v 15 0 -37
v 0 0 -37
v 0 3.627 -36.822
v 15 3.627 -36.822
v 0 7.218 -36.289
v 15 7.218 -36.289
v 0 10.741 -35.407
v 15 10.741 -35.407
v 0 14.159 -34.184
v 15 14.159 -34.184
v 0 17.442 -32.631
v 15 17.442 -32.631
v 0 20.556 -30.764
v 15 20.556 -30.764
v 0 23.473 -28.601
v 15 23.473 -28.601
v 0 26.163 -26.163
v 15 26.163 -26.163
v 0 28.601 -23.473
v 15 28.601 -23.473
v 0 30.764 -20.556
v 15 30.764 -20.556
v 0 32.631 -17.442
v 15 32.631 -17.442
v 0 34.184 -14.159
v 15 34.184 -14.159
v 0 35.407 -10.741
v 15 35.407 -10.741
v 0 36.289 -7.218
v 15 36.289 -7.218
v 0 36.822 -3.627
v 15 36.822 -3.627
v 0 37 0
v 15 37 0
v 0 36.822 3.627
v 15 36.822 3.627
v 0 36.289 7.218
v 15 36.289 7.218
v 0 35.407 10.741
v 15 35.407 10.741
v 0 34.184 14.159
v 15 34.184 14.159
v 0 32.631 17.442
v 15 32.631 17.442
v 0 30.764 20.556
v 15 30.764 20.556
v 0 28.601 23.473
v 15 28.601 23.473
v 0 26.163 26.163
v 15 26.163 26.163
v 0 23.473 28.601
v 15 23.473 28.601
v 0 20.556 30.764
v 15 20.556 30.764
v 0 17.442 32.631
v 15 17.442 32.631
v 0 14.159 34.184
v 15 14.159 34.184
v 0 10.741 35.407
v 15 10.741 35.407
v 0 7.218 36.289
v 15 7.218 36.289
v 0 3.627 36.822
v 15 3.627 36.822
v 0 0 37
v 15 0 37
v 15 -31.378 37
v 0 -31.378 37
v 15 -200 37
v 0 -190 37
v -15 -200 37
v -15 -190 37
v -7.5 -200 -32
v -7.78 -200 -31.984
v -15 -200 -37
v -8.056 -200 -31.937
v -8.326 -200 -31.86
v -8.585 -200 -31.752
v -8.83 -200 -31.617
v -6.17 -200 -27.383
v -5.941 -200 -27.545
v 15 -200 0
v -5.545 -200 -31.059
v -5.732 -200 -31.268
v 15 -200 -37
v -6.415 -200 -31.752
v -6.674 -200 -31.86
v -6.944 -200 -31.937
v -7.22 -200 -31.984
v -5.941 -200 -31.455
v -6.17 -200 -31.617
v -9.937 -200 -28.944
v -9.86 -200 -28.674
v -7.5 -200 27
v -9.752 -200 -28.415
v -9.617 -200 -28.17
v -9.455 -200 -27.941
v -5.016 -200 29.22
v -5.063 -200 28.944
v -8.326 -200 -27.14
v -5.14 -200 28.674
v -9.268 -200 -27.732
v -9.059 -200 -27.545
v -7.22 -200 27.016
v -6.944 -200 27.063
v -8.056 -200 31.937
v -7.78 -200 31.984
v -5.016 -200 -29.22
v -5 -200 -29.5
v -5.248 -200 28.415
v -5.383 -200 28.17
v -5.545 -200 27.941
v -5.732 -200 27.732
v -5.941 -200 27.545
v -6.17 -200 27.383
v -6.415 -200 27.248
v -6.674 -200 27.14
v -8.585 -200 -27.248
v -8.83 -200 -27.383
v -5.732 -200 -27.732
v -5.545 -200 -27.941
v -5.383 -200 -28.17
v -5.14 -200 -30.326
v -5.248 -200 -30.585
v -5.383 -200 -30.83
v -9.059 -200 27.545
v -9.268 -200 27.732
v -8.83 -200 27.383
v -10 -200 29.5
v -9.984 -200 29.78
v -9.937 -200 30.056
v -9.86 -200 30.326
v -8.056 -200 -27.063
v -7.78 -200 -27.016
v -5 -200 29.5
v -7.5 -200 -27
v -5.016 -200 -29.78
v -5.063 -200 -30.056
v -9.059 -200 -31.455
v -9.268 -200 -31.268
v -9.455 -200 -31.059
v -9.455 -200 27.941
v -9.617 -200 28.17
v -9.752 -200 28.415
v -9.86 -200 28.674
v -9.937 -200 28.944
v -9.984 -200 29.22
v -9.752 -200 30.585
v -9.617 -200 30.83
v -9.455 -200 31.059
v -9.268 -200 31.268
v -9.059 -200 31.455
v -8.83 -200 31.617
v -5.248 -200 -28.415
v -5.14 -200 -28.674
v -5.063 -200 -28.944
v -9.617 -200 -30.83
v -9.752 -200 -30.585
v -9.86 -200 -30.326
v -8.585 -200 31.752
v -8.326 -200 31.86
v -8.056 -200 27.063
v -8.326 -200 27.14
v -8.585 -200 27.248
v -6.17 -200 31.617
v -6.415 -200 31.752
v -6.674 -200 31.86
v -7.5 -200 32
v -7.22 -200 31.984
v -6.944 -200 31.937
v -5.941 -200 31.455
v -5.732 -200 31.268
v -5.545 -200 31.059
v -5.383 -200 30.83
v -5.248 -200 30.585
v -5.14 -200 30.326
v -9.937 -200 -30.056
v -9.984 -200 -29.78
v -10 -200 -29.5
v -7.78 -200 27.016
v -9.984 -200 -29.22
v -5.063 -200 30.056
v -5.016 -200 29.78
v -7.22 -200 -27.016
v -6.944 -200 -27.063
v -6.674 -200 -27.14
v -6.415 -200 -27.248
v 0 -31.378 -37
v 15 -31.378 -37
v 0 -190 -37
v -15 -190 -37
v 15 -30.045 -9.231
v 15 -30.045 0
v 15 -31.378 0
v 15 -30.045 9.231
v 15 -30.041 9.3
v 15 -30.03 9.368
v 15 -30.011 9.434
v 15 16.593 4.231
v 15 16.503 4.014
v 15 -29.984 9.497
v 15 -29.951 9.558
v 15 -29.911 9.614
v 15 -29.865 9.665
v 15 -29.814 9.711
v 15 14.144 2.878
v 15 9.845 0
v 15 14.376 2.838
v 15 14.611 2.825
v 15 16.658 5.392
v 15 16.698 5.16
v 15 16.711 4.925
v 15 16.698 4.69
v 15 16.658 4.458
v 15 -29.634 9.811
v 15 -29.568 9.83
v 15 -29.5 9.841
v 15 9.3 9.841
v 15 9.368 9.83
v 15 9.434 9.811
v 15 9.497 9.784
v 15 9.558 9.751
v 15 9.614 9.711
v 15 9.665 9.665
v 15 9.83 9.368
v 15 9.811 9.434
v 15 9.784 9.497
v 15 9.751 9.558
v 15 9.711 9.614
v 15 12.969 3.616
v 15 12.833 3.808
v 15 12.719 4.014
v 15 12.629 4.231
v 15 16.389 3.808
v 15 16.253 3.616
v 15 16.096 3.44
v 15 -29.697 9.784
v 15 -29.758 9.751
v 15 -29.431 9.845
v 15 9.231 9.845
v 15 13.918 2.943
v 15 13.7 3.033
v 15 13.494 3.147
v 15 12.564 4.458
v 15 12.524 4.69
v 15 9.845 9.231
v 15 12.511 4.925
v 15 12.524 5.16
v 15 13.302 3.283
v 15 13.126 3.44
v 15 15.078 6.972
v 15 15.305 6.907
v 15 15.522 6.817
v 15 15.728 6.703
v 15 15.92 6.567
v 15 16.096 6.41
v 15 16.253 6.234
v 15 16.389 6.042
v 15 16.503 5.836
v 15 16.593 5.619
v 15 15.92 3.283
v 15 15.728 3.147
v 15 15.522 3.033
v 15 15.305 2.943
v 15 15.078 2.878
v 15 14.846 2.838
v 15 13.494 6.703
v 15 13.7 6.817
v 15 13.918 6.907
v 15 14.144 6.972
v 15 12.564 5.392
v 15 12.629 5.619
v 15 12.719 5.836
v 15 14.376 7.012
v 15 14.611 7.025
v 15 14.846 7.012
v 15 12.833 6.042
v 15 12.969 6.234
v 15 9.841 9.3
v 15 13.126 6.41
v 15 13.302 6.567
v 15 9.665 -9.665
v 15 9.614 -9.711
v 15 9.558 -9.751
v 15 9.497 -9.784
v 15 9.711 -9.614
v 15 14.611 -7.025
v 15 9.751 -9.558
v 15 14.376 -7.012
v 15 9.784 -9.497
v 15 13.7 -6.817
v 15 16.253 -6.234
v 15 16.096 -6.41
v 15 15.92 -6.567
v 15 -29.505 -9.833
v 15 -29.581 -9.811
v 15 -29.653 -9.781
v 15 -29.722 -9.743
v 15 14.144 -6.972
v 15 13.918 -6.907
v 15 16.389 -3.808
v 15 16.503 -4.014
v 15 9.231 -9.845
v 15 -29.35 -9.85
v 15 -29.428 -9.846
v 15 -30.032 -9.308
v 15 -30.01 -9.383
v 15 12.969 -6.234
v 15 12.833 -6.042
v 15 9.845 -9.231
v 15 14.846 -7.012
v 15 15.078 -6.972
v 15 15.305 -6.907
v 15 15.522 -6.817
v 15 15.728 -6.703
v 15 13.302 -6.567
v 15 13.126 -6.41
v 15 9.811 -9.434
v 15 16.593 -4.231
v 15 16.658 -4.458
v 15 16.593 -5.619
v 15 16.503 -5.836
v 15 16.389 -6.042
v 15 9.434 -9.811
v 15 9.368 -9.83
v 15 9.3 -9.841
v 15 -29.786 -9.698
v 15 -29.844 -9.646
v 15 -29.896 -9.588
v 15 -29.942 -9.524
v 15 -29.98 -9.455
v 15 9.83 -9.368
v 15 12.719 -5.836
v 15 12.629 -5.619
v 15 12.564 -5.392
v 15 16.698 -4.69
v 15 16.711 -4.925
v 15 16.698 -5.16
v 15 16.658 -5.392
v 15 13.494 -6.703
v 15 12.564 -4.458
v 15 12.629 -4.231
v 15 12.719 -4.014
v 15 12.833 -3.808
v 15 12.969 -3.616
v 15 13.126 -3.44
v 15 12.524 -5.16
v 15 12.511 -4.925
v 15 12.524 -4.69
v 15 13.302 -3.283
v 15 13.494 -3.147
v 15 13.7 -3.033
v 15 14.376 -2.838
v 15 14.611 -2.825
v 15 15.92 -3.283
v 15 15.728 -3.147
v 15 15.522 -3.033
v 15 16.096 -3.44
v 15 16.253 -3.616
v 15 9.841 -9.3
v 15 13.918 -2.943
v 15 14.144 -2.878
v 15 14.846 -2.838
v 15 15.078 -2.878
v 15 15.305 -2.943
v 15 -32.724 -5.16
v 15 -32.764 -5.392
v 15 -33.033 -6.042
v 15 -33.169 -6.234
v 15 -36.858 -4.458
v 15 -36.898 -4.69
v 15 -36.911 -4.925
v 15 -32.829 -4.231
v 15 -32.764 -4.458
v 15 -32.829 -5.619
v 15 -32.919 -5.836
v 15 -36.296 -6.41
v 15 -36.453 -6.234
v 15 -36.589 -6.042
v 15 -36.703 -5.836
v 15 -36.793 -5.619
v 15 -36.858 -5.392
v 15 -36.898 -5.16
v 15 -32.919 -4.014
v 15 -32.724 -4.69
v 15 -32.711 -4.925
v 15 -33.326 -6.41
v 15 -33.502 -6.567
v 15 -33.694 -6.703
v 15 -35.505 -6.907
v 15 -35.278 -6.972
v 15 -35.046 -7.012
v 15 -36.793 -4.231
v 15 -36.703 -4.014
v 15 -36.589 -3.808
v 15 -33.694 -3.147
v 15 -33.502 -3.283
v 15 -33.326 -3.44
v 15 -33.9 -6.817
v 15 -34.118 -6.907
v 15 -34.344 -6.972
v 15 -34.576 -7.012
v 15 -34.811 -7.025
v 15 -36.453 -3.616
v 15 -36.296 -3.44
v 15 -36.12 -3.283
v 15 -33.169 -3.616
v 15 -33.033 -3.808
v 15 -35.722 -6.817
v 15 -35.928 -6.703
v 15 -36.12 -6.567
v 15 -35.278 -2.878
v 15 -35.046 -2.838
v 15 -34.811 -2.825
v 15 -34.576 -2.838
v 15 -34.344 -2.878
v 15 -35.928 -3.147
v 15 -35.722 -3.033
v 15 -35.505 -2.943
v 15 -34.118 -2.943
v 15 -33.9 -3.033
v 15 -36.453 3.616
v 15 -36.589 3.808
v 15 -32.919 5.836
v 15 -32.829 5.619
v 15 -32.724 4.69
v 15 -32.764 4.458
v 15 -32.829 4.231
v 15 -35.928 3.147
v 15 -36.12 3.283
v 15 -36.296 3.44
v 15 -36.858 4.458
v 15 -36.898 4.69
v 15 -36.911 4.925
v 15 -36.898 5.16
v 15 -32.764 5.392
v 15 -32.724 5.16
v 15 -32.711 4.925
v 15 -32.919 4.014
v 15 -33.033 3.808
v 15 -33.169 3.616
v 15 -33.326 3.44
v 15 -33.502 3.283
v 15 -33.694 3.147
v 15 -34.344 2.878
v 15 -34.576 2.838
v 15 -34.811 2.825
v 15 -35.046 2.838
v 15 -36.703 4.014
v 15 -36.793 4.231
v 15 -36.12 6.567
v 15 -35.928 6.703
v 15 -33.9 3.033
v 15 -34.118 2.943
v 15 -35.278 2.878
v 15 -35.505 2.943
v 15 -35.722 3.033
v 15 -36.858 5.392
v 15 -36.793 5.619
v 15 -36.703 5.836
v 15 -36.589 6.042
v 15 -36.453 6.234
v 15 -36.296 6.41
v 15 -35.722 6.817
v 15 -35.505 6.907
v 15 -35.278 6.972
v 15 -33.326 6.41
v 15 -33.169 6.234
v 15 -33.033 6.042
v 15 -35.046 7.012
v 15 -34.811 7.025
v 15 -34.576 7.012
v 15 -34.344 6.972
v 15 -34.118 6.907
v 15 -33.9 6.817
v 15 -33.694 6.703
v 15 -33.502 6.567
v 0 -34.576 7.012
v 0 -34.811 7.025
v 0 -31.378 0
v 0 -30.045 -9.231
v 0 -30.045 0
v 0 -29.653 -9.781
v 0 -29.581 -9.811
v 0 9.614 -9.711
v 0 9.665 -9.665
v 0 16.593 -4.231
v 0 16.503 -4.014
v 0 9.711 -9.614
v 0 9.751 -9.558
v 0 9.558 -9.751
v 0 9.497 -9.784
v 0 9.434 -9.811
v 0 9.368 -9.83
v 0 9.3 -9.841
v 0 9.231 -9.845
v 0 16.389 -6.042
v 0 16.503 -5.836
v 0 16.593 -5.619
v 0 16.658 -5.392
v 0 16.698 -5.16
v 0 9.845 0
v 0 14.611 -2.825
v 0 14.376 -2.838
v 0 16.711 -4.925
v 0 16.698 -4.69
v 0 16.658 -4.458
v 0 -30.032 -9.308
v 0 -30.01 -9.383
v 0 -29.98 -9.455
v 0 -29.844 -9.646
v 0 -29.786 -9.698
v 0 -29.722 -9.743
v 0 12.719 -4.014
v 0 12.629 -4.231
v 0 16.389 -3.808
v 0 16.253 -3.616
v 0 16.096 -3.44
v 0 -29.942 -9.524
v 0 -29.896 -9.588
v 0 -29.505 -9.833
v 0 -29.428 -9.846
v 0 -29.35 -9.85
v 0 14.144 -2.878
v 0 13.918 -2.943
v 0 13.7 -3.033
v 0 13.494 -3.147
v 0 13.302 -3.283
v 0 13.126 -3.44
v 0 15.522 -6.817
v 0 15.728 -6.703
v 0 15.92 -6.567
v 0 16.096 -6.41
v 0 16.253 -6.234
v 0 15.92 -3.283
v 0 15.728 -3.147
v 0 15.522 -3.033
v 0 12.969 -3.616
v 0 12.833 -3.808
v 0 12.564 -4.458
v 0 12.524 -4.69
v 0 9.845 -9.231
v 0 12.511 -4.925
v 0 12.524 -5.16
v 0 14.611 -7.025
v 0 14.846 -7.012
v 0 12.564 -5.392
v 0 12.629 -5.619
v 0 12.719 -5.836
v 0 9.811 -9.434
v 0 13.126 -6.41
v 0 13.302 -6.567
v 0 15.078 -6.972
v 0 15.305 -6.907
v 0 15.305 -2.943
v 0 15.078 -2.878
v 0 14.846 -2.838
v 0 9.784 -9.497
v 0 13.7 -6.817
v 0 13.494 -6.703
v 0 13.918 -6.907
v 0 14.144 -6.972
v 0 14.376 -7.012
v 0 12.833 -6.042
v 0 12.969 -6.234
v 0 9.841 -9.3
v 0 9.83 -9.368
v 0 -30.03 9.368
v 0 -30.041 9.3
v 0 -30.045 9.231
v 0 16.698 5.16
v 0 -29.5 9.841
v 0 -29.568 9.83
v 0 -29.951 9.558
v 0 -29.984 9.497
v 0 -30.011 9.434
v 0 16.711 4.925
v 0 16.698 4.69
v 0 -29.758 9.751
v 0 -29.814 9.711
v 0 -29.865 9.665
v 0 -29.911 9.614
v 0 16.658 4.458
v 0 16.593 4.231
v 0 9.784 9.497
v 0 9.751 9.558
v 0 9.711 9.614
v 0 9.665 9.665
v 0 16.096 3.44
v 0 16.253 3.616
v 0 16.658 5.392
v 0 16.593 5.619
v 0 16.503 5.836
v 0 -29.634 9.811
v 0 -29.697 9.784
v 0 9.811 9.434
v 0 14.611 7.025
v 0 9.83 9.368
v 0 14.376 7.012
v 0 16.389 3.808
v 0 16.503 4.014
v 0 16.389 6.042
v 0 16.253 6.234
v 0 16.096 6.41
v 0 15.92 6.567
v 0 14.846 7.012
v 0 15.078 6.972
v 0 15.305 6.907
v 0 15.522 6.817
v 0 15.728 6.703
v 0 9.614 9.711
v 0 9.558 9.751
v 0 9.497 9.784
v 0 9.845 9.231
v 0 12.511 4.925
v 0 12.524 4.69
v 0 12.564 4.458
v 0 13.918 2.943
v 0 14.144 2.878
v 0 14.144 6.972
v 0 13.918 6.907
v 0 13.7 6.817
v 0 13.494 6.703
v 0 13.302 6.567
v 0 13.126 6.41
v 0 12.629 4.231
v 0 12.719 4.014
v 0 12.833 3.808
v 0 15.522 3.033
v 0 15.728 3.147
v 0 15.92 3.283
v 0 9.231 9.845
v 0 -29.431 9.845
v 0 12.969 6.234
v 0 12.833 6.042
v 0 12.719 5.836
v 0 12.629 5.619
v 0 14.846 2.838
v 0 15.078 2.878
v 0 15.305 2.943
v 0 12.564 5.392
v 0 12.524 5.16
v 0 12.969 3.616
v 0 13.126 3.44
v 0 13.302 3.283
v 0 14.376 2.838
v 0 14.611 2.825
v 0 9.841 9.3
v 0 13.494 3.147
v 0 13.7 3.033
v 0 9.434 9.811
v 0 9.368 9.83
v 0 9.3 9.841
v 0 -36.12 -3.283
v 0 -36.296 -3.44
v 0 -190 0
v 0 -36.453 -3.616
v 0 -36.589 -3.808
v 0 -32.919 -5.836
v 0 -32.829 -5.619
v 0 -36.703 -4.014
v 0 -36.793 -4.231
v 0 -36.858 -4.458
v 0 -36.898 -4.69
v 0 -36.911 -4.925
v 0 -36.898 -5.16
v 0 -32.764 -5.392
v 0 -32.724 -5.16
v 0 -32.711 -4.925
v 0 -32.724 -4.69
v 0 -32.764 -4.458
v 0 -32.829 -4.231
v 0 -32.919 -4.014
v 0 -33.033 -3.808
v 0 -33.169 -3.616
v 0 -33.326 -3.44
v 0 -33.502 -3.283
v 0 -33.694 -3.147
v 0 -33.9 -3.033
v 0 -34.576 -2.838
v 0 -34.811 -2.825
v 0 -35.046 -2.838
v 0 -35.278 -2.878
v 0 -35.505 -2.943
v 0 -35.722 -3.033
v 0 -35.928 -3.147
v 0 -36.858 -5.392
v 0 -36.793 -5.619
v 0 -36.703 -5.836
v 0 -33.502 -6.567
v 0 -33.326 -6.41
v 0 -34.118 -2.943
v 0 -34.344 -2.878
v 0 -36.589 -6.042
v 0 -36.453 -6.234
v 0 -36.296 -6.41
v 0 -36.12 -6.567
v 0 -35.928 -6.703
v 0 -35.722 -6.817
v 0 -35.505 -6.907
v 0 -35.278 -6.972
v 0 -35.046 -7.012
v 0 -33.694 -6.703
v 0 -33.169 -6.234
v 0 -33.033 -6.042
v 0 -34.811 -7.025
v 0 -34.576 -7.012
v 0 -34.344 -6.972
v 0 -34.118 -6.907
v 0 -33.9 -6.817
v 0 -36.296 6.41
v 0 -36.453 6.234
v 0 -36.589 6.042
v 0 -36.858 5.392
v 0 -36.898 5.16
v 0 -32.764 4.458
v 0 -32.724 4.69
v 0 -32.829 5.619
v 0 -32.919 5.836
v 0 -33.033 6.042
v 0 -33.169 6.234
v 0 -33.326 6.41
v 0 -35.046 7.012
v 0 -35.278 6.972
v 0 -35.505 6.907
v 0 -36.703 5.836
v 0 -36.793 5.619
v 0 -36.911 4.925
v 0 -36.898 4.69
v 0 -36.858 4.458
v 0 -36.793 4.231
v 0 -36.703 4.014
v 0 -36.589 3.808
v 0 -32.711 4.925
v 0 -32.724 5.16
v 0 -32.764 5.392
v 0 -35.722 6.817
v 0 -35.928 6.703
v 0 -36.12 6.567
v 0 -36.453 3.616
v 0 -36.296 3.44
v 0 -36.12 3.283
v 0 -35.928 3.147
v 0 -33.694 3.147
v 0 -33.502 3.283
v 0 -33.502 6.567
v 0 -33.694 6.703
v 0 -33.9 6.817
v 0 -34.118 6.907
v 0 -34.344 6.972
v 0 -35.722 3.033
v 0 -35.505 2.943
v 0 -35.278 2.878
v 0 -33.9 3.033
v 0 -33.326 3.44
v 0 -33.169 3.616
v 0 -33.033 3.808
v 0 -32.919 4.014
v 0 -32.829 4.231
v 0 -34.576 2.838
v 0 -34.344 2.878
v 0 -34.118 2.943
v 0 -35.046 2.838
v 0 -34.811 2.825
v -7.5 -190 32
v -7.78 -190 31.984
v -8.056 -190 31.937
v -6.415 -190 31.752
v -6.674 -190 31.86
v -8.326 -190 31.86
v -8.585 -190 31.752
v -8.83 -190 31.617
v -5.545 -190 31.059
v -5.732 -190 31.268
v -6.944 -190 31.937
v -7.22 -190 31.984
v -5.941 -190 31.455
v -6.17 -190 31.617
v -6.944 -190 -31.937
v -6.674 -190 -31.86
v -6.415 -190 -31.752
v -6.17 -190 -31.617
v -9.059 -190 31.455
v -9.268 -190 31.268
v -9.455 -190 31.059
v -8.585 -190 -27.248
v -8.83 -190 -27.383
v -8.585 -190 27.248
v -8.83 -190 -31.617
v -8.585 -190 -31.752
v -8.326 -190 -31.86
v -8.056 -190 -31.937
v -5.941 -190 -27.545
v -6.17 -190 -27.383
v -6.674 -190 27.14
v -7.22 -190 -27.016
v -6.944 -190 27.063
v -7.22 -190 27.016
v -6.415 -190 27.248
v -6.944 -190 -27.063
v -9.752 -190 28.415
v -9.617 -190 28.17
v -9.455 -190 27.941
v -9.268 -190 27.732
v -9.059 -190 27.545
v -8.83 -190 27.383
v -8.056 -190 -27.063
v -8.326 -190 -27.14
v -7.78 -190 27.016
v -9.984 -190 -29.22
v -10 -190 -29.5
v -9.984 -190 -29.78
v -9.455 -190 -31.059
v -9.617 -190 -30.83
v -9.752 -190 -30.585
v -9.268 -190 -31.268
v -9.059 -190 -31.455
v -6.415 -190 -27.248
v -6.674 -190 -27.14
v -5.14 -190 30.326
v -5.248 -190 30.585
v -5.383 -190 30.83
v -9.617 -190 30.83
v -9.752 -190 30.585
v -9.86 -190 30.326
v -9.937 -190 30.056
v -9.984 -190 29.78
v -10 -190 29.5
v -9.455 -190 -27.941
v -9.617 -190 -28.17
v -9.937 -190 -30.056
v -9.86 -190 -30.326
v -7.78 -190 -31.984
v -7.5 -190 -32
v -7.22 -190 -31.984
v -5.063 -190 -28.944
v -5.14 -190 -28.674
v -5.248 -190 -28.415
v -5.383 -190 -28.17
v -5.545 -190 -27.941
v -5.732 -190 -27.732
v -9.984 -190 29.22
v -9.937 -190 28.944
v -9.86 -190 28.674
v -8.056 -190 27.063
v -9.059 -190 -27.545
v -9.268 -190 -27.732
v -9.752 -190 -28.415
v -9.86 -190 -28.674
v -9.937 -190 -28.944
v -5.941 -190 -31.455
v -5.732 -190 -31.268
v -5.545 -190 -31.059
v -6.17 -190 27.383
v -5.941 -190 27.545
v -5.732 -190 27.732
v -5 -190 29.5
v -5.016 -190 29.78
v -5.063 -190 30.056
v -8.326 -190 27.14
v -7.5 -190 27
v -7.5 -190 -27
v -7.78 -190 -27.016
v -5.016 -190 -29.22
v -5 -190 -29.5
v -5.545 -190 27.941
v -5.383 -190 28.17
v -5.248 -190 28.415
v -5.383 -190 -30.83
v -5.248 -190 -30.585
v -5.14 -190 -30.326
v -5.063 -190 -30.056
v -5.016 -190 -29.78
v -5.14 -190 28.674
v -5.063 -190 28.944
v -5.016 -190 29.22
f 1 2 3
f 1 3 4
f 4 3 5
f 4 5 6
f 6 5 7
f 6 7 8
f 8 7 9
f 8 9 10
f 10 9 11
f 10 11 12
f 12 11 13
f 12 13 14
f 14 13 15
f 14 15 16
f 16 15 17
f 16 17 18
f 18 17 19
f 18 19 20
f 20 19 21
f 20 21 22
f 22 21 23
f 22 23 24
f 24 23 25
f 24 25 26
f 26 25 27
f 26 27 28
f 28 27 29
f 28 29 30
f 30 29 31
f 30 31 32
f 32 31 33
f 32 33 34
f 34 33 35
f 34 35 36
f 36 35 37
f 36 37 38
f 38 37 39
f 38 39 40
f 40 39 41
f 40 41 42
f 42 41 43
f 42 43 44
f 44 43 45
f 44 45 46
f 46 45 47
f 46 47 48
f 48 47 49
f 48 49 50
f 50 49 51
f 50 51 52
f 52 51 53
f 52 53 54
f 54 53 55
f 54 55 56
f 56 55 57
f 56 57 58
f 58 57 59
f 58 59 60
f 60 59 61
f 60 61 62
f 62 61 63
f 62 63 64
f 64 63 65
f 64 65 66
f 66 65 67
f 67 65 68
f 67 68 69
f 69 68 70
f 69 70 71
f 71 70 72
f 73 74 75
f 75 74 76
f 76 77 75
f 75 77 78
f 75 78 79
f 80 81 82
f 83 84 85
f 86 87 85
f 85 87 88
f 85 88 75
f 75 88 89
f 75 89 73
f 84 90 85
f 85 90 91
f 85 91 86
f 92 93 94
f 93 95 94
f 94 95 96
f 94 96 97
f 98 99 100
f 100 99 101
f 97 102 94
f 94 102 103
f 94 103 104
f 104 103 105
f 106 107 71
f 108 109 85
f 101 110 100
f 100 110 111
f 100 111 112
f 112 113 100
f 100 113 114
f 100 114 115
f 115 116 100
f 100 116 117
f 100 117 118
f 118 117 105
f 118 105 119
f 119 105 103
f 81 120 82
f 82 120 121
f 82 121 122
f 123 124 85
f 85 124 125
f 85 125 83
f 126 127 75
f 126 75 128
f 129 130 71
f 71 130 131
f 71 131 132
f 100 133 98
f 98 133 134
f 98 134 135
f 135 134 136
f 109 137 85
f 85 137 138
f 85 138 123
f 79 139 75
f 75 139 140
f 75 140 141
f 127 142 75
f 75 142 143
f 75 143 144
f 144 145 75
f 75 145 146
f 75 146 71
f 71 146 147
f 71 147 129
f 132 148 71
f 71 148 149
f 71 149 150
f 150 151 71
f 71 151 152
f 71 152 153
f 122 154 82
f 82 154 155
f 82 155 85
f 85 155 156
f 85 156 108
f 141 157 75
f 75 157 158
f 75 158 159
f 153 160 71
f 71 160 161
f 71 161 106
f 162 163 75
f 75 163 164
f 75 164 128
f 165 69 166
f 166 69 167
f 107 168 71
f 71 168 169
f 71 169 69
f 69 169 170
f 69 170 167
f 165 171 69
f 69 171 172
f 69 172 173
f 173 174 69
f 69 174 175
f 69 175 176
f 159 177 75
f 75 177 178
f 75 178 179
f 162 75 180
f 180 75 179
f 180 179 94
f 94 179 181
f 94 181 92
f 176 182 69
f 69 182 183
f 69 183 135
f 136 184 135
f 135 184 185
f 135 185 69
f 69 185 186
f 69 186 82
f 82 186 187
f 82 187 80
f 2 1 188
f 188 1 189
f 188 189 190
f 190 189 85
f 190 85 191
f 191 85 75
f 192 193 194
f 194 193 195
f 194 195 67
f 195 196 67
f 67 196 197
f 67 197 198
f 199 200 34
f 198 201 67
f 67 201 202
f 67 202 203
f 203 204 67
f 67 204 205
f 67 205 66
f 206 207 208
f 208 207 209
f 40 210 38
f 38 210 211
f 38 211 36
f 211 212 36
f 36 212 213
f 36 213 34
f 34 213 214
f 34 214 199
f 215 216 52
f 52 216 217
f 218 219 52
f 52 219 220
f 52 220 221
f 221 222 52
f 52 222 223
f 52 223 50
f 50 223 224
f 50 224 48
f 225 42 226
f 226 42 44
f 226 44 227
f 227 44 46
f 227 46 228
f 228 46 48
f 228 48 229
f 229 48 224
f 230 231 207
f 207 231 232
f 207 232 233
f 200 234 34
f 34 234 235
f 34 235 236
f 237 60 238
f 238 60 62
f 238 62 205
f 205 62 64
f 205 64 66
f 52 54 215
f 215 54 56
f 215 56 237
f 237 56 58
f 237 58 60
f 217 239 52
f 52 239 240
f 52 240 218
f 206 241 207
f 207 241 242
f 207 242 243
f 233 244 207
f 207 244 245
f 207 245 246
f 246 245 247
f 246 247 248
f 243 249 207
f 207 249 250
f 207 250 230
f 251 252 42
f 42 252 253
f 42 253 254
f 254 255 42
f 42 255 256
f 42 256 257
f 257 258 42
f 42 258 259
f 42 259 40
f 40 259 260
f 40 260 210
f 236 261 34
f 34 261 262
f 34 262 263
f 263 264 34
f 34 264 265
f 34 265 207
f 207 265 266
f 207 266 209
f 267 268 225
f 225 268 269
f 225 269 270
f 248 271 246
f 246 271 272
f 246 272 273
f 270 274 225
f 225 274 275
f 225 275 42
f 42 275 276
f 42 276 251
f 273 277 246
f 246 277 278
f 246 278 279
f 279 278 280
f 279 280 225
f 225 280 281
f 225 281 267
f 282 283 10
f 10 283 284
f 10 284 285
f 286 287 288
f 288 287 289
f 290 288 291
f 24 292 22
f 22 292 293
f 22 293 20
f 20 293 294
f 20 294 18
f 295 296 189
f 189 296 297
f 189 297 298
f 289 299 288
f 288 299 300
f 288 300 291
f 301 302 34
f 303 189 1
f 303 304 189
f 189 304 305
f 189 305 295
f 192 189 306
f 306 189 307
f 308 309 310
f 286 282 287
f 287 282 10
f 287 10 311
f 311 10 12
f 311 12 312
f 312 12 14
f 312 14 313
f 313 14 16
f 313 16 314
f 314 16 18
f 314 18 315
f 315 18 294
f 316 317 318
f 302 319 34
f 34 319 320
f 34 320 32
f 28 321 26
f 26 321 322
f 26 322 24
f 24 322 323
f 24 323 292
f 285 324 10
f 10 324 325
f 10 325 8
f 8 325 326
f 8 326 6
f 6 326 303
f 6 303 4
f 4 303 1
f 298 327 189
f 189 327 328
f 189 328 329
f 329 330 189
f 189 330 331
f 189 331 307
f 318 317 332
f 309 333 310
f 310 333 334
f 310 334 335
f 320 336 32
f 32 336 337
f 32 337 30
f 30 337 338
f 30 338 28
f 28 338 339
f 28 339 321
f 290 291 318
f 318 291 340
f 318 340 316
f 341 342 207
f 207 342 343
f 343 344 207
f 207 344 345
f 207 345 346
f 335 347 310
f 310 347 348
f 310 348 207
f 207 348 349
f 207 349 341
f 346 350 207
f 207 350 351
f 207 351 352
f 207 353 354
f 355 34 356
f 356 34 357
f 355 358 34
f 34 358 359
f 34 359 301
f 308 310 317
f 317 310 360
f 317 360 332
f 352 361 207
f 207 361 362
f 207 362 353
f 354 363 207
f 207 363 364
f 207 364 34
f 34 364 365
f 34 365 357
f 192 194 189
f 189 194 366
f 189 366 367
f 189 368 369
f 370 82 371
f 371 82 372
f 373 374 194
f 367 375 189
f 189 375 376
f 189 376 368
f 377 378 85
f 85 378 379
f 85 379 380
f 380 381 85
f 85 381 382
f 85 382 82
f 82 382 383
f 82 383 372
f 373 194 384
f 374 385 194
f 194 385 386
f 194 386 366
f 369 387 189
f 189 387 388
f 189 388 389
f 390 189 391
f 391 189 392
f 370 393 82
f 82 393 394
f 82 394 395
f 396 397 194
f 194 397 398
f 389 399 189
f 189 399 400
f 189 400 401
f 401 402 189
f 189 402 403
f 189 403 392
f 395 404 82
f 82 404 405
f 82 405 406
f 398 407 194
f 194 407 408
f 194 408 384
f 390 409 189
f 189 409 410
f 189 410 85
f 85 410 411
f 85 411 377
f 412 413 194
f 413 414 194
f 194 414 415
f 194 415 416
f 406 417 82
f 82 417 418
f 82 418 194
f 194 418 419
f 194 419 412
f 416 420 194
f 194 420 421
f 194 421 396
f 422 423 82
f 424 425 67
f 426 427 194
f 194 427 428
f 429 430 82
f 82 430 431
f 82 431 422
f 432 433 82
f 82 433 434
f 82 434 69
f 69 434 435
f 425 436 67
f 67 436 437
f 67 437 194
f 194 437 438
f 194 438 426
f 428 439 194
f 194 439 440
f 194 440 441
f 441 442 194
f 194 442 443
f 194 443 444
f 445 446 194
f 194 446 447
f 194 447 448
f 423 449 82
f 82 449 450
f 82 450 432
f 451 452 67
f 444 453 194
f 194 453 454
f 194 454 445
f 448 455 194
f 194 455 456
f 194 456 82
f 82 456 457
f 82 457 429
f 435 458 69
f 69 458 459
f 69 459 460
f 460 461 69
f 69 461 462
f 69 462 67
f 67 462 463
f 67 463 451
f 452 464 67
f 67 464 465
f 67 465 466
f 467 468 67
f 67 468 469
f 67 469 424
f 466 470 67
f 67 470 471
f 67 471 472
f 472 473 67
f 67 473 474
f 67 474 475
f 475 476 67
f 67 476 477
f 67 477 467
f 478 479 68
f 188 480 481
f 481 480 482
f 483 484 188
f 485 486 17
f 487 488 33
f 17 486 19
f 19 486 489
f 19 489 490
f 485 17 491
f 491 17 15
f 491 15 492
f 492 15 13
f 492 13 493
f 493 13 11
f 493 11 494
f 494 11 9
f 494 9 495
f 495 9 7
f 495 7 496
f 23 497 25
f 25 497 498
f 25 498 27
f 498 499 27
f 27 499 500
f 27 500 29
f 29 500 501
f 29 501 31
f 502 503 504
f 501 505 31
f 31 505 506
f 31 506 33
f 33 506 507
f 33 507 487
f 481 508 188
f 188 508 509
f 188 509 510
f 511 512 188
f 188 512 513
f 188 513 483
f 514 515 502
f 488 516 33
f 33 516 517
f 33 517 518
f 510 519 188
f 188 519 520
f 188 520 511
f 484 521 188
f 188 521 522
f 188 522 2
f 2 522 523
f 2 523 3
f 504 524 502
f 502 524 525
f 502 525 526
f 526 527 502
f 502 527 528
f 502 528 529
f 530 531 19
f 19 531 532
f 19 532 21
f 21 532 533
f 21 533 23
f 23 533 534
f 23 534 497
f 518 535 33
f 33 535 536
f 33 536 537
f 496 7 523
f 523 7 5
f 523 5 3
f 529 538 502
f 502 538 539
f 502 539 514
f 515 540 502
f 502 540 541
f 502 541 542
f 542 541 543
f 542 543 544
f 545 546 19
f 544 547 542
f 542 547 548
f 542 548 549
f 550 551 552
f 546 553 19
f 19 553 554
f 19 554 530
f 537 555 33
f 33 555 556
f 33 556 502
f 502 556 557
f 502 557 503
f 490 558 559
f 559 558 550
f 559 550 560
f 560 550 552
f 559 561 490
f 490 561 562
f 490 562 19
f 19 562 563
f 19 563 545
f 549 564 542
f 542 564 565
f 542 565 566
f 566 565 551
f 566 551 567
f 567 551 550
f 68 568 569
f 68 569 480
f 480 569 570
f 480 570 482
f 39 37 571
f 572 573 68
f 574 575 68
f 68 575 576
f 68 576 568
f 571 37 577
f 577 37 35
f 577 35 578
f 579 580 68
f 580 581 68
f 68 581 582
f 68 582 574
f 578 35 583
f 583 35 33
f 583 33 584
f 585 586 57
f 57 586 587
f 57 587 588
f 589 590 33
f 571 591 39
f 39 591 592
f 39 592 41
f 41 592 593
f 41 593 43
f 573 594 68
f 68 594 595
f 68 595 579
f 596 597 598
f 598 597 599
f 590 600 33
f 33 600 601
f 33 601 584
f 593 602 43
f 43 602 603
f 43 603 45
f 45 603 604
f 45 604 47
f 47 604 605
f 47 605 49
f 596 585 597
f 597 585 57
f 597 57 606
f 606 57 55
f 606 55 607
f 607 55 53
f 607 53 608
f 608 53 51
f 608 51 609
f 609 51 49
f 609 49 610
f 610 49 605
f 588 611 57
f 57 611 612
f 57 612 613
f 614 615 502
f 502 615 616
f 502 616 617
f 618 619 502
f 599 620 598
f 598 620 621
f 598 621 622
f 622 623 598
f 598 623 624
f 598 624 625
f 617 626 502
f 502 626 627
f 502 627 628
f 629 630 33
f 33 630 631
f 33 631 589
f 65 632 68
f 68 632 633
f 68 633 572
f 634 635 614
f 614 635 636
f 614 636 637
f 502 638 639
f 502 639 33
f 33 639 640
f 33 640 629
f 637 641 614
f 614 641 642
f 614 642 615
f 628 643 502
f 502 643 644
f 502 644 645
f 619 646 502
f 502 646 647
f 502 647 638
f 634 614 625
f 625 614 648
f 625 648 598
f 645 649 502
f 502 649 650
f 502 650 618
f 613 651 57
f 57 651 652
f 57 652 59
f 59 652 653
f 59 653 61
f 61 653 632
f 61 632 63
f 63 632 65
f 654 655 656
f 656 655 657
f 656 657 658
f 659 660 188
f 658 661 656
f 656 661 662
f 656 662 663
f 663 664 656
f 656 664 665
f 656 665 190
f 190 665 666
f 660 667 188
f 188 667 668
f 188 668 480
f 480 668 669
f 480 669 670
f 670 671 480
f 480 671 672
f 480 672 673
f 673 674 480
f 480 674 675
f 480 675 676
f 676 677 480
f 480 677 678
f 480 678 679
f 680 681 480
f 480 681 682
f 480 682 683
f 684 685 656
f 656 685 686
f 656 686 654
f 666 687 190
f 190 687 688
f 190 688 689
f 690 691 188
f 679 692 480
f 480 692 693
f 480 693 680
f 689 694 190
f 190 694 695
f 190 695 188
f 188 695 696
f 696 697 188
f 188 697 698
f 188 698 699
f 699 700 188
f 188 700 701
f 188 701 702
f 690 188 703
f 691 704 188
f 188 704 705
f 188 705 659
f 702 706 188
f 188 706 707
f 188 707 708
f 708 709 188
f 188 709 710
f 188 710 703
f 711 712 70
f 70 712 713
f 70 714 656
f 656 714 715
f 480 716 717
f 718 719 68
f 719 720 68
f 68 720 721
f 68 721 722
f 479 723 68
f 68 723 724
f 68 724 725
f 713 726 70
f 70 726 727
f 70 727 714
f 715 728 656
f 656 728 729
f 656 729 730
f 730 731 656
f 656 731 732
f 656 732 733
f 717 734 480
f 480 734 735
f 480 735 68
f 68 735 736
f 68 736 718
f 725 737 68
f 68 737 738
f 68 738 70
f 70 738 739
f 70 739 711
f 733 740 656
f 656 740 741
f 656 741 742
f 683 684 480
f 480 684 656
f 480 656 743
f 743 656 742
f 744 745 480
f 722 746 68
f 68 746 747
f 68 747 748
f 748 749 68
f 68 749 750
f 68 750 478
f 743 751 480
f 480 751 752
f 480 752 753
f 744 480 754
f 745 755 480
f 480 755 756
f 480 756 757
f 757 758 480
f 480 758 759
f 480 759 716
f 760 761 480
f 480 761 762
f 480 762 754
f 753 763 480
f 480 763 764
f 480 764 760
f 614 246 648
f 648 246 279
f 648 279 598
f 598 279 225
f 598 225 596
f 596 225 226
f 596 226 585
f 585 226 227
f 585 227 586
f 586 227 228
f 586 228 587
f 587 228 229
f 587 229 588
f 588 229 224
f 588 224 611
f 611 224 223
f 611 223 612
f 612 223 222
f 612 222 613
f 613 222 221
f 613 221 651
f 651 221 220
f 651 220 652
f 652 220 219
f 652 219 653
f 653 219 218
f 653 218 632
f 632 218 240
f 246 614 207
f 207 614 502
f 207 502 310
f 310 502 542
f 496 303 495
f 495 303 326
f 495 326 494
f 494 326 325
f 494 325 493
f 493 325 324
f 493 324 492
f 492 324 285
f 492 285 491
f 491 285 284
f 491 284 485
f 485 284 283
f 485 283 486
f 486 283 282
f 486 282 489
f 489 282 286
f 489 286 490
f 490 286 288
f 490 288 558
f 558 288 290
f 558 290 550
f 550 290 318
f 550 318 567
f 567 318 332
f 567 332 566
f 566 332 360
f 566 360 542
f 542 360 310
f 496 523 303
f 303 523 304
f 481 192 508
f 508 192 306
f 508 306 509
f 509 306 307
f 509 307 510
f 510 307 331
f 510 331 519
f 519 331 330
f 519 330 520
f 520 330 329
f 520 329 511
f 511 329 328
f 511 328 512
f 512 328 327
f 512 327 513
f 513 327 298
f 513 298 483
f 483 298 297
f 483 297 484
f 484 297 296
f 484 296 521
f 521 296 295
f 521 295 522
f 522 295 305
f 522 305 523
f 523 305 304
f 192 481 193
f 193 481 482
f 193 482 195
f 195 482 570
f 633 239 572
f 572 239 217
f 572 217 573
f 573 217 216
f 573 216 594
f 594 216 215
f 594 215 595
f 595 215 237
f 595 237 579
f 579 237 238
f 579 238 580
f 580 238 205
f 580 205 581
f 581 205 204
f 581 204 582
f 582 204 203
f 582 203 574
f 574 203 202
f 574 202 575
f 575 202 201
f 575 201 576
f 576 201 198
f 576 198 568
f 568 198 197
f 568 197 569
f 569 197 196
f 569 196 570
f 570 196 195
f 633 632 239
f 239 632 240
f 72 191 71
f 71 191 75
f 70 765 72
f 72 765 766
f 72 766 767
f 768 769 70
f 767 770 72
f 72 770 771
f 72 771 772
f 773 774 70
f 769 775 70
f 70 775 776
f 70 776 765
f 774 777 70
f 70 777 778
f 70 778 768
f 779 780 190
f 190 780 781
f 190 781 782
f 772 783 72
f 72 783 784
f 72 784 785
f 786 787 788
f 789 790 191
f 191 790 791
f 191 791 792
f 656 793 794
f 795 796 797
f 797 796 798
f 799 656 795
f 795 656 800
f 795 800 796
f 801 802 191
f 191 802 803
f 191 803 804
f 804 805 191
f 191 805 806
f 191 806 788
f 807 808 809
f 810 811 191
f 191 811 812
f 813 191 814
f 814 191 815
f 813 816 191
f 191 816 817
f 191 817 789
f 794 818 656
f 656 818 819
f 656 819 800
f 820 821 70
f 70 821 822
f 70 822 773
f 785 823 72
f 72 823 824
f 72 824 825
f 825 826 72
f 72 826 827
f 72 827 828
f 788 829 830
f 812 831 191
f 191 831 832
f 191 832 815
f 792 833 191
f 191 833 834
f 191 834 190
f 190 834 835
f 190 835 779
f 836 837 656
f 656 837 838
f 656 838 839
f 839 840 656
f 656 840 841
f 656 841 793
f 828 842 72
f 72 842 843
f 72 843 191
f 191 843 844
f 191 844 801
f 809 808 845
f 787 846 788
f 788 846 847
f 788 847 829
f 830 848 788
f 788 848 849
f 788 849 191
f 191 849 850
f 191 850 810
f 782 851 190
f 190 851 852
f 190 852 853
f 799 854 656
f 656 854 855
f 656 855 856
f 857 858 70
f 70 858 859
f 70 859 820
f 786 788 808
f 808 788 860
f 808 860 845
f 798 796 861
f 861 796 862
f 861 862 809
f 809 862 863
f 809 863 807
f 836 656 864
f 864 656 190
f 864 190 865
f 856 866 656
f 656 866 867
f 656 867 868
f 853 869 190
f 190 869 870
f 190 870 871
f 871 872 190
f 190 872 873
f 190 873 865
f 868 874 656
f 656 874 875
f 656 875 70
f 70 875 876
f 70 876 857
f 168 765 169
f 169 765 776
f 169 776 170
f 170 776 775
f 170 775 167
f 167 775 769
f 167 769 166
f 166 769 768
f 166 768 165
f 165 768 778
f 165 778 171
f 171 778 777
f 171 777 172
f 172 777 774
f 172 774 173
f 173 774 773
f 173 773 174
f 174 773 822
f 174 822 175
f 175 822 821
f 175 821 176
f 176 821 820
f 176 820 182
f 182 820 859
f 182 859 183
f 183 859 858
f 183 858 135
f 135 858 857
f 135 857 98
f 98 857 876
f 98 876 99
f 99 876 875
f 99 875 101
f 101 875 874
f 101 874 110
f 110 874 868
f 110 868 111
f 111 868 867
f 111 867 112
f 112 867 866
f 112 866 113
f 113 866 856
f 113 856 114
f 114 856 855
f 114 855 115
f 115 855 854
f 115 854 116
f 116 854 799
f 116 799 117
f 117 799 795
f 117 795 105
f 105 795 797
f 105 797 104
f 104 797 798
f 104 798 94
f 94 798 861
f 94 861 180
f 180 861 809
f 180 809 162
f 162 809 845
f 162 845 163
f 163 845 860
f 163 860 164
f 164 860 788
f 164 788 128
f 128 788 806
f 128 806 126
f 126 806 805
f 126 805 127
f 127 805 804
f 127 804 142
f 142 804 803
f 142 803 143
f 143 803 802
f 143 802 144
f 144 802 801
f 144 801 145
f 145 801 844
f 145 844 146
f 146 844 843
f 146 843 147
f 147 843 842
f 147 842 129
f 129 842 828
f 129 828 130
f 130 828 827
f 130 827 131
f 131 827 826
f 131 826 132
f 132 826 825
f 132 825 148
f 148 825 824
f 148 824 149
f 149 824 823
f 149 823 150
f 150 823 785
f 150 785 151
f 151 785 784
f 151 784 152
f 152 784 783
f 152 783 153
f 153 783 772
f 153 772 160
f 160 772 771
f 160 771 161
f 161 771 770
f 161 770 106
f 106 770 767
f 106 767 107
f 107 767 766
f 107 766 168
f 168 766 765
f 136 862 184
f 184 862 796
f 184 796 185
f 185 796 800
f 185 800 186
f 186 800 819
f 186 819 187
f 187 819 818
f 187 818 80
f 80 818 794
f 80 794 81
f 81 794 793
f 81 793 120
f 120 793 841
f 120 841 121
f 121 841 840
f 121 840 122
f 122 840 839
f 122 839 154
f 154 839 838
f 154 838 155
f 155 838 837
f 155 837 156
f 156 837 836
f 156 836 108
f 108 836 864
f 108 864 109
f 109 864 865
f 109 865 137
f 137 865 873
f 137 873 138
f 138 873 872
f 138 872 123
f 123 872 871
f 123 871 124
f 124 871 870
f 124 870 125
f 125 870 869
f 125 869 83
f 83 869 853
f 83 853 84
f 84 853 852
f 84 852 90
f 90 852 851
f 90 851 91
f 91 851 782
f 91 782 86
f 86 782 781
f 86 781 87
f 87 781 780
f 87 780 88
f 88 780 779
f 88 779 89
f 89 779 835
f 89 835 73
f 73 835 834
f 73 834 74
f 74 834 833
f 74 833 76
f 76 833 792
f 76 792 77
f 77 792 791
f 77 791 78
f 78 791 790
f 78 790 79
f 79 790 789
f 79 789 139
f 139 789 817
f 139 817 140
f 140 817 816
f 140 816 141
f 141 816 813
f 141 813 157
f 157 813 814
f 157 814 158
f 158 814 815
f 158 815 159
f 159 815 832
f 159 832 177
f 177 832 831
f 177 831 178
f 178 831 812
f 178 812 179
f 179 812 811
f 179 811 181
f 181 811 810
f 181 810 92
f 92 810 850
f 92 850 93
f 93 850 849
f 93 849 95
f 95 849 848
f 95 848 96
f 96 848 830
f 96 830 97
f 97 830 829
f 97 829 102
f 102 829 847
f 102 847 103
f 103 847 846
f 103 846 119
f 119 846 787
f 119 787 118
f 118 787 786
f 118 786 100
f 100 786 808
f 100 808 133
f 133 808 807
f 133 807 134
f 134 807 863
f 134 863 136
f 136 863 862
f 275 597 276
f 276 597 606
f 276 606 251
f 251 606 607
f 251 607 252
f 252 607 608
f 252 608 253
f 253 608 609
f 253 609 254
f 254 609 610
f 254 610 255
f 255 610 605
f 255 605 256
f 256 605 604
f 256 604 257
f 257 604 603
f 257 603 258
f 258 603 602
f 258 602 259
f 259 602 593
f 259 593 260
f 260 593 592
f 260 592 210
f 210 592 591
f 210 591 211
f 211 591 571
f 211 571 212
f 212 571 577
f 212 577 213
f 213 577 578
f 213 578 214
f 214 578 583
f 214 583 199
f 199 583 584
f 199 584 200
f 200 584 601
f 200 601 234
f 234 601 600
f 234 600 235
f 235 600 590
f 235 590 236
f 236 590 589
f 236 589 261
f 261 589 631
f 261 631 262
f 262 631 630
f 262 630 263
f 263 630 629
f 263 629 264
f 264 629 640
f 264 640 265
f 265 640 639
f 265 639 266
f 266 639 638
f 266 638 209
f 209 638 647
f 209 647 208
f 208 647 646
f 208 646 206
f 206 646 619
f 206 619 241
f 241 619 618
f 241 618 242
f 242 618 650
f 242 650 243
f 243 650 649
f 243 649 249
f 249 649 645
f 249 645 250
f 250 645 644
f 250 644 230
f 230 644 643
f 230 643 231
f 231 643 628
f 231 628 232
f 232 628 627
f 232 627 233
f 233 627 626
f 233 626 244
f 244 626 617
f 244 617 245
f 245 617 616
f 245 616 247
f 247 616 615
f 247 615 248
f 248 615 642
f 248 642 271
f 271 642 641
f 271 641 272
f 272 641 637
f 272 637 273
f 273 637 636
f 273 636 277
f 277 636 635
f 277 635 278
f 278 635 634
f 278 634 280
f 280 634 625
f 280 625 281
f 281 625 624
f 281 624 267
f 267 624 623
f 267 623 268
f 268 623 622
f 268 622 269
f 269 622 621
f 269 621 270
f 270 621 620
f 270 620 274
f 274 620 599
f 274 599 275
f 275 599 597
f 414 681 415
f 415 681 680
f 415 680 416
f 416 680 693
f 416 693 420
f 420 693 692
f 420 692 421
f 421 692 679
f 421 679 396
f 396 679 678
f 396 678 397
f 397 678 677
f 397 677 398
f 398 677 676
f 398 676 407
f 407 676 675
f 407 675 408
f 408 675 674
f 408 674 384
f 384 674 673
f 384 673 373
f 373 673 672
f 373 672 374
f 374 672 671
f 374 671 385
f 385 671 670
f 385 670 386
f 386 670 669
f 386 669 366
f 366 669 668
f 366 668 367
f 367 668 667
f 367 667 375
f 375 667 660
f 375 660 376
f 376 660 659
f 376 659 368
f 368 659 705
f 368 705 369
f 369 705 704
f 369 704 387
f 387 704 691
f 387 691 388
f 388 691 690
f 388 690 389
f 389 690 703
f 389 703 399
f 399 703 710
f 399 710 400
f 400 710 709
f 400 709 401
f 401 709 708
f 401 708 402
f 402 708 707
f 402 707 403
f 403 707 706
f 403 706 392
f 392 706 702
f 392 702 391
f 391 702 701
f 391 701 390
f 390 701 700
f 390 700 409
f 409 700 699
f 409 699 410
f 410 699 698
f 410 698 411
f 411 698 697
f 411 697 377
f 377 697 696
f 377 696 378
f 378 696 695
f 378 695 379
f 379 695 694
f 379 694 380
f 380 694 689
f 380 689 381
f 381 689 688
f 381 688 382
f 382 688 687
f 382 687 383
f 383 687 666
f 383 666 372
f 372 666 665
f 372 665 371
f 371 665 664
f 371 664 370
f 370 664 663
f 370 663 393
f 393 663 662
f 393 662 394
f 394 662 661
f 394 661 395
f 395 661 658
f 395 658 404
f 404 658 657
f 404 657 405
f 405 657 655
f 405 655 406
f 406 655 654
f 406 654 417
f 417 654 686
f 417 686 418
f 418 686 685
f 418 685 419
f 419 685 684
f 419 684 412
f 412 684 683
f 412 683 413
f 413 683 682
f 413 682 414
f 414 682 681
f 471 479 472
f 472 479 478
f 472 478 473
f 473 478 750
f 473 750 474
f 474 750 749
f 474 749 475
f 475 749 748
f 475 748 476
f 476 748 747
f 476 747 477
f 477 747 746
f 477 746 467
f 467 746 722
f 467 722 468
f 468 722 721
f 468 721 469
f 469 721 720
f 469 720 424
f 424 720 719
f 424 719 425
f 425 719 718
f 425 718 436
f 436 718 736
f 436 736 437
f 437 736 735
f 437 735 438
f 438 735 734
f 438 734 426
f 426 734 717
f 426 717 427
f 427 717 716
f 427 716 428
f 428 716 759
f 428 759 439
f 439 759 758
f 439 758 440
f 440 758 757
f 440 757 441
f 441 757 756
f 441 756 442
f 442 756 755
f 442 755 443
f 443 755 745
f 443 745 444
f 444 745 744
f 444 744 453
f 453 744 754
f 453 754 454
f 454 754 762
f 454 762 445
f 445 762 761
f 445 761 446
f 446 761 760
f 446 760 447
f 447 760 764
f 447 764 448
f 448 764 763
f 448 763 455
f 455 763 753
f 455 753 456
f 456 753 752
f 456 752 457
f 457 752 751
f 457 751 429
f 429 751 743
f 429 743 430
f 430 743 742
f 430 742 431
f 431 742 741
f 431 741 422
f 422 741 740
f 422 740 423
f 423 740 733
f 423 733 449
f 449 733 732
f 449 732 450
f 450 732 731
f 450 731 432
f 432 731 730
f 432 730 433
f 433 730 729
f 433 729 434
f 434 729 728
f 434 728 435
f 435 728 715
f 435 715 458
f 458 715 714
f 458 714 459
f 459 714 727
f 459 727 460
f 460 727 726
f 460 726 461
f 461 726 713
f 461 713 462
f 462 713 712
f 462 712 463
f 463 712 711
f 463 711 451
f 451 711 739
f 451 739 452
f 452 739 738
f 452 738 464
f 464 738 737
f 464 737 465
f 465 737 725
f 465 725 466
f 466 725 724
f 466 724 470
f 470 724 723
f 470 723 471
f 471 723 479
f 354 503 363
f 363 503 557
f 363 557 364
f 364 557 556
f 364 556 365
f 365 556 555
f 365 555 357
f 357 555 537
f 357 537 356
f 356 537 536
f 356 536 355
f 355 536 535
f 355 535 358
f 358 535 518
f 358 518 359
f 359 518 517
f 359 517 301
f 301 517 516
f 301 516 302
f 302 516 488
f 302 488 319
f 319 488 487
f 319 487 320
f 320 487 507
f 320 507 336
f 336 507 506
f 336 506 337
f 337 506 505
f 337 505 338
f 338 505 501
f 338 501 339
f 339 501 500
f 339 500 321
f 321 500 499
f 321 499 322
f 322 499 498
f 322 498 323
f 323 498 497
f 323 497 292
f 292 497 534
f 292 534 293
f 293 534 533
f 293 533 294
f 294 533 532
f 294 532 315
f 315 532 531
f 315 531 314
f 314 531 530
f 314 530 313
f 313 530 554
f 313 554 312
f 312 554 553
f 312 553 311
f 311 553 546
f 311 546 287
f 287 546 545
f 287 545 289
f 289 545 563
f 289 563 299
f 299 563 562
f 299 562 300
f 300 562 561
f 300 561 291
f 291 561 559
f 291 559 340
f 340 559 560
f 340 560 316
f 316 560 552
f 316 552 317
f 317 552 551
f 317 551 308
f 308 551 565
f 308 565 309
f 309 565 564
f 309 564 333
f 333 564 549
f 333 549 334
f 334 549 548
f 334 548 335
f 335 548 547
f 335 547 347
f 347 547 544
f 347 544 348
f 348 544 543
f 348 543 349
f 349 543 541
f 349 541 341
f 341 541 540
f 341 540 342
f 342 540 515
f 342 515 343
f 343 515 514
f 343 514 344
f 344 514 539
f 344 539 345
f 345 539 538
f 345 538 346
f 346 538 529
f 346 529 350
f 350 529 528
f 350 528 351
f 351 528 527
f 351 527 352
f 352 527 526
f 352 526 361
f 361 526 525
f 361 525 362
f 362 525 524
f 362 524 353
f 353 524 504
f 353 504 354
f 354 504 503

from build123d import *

# Parameters (mm, degrees)
BOSS_EXTRUDE1_DEPTH = 15
CUT_EXTRUDE2_DEPTH  = 15
SKETCH4_W           = 15
SKETCH4_H           = 74
BOSS_EXTRUDE2_DEPTH = 10
SKETCH5_R           = 2.5
CUT_EXTRUDE3_DEPTH  = 10
SKETCH6_R           = 2.1
CUT_EXTRUDE4_DEPTH  = 16


with BuildPart() as part:
    # Sketch1 → Boss-Extrude1 (new body)
    with BuildSketch(Plane(origin=(0, 0, 0), x_dir=(0, 0, -1), z_dir=(1, 0, 0))):
        with BuildLine():
            Line((-37, 0), (-37, -200))
            Line((-37, -200), (37, -200))
            Line((37, -200), (37, 0))
            ThreePointArc((37, 0), (0, 37), (-37, 0))
        make_face()
    extrude(amount=BOSS_EXTRUDE1_DEPTH)

    # Sketch3 → Cut-Extrude2 (cut)
    with BuildSketch(Plane(origin=(15, 0, 0), x_dir=(0, 0, -1), z_dir=(1, 0, 0))):
        with BuildLine():
            Line((9.845321657, 9.230794756), (9.85, -29.35))
            ThreePointArc((9.85, -29.35), (9.672784276, -29.815555418), (9.230794756, -30.045321657))
            Line((9.230794756, -30.045321657), (-9.230794756, -30.045321657))
            ThreePointArc((-9.230794756, -30.045321657), (-9.665330895, -29.865330895), (-9.845321657, -29.430794756))
            Line((-9.845321657, -29.430794756), (-9.845321657, 9.230794756))
            ThreePointArc((-9.845321657, 9.230794756), (-9.665330895, 9.665330895), (-9.230794756, 9.845321657))
            Line((-9.230794756, 9.845321657), (9.230794756, 9.845321657))
            ThreePointArc((9.230794756, 9.845321657), (9.665330895, 9.665330895), (9.845321657, 9.230794756))
        make_face()
    extrude(amount=-CUT_EXTRUDE2_DEPTH, mode=Mode.SUBTRACT)

    # Sketch4 → Boss-Extrude2 (add)
    with BuildSketch(Plane.XZ.offset(200)):
        with Locations((-7.5, 0)):
            Rectangle(SKETCH4_W, SKETCH4_H)
    extrude(amount=-BOSS_EXTRUDE2_DEPTH)

    # Sketch5 → Cut-Extrude3 (cut)
    with BuildSketch(Plane(origin=(0, -190, 0), x_dir=(1, 0, 0), z_dir=(0, 1, 0))):
        with Locations((-7.5, 29.5)):
            Circle(SKETCH5_R)
        with Locations((-7.5, -29.5)):
            Circle(SKETCH5_R)
    extrude(amount=-CUT_EXTRUDE3_DEPTH, mode=Mode.SUBTRACT)

    # Sketch6 → Cut-Extrude4 (cut, through all)
    with BuildSketch(Plane.ZY):
        with Locations((4.925, 14.611145618)):
            Circle(SKETCH6_R)
        with Locations((-4.925, 14.611145618)):
            Circle(SKETCH6_R)
        with Locations((4.925, -34.811145618)):
            Circle(SKETCH6_R)
        with Locations((-4.925, -34.811145618)):
            Circle(SKETCH6_R)
    extrude(amount=-CUT_EXTRUDE4_DEPTH, mode=Mode.SUBTRACT)


solid = part.part
